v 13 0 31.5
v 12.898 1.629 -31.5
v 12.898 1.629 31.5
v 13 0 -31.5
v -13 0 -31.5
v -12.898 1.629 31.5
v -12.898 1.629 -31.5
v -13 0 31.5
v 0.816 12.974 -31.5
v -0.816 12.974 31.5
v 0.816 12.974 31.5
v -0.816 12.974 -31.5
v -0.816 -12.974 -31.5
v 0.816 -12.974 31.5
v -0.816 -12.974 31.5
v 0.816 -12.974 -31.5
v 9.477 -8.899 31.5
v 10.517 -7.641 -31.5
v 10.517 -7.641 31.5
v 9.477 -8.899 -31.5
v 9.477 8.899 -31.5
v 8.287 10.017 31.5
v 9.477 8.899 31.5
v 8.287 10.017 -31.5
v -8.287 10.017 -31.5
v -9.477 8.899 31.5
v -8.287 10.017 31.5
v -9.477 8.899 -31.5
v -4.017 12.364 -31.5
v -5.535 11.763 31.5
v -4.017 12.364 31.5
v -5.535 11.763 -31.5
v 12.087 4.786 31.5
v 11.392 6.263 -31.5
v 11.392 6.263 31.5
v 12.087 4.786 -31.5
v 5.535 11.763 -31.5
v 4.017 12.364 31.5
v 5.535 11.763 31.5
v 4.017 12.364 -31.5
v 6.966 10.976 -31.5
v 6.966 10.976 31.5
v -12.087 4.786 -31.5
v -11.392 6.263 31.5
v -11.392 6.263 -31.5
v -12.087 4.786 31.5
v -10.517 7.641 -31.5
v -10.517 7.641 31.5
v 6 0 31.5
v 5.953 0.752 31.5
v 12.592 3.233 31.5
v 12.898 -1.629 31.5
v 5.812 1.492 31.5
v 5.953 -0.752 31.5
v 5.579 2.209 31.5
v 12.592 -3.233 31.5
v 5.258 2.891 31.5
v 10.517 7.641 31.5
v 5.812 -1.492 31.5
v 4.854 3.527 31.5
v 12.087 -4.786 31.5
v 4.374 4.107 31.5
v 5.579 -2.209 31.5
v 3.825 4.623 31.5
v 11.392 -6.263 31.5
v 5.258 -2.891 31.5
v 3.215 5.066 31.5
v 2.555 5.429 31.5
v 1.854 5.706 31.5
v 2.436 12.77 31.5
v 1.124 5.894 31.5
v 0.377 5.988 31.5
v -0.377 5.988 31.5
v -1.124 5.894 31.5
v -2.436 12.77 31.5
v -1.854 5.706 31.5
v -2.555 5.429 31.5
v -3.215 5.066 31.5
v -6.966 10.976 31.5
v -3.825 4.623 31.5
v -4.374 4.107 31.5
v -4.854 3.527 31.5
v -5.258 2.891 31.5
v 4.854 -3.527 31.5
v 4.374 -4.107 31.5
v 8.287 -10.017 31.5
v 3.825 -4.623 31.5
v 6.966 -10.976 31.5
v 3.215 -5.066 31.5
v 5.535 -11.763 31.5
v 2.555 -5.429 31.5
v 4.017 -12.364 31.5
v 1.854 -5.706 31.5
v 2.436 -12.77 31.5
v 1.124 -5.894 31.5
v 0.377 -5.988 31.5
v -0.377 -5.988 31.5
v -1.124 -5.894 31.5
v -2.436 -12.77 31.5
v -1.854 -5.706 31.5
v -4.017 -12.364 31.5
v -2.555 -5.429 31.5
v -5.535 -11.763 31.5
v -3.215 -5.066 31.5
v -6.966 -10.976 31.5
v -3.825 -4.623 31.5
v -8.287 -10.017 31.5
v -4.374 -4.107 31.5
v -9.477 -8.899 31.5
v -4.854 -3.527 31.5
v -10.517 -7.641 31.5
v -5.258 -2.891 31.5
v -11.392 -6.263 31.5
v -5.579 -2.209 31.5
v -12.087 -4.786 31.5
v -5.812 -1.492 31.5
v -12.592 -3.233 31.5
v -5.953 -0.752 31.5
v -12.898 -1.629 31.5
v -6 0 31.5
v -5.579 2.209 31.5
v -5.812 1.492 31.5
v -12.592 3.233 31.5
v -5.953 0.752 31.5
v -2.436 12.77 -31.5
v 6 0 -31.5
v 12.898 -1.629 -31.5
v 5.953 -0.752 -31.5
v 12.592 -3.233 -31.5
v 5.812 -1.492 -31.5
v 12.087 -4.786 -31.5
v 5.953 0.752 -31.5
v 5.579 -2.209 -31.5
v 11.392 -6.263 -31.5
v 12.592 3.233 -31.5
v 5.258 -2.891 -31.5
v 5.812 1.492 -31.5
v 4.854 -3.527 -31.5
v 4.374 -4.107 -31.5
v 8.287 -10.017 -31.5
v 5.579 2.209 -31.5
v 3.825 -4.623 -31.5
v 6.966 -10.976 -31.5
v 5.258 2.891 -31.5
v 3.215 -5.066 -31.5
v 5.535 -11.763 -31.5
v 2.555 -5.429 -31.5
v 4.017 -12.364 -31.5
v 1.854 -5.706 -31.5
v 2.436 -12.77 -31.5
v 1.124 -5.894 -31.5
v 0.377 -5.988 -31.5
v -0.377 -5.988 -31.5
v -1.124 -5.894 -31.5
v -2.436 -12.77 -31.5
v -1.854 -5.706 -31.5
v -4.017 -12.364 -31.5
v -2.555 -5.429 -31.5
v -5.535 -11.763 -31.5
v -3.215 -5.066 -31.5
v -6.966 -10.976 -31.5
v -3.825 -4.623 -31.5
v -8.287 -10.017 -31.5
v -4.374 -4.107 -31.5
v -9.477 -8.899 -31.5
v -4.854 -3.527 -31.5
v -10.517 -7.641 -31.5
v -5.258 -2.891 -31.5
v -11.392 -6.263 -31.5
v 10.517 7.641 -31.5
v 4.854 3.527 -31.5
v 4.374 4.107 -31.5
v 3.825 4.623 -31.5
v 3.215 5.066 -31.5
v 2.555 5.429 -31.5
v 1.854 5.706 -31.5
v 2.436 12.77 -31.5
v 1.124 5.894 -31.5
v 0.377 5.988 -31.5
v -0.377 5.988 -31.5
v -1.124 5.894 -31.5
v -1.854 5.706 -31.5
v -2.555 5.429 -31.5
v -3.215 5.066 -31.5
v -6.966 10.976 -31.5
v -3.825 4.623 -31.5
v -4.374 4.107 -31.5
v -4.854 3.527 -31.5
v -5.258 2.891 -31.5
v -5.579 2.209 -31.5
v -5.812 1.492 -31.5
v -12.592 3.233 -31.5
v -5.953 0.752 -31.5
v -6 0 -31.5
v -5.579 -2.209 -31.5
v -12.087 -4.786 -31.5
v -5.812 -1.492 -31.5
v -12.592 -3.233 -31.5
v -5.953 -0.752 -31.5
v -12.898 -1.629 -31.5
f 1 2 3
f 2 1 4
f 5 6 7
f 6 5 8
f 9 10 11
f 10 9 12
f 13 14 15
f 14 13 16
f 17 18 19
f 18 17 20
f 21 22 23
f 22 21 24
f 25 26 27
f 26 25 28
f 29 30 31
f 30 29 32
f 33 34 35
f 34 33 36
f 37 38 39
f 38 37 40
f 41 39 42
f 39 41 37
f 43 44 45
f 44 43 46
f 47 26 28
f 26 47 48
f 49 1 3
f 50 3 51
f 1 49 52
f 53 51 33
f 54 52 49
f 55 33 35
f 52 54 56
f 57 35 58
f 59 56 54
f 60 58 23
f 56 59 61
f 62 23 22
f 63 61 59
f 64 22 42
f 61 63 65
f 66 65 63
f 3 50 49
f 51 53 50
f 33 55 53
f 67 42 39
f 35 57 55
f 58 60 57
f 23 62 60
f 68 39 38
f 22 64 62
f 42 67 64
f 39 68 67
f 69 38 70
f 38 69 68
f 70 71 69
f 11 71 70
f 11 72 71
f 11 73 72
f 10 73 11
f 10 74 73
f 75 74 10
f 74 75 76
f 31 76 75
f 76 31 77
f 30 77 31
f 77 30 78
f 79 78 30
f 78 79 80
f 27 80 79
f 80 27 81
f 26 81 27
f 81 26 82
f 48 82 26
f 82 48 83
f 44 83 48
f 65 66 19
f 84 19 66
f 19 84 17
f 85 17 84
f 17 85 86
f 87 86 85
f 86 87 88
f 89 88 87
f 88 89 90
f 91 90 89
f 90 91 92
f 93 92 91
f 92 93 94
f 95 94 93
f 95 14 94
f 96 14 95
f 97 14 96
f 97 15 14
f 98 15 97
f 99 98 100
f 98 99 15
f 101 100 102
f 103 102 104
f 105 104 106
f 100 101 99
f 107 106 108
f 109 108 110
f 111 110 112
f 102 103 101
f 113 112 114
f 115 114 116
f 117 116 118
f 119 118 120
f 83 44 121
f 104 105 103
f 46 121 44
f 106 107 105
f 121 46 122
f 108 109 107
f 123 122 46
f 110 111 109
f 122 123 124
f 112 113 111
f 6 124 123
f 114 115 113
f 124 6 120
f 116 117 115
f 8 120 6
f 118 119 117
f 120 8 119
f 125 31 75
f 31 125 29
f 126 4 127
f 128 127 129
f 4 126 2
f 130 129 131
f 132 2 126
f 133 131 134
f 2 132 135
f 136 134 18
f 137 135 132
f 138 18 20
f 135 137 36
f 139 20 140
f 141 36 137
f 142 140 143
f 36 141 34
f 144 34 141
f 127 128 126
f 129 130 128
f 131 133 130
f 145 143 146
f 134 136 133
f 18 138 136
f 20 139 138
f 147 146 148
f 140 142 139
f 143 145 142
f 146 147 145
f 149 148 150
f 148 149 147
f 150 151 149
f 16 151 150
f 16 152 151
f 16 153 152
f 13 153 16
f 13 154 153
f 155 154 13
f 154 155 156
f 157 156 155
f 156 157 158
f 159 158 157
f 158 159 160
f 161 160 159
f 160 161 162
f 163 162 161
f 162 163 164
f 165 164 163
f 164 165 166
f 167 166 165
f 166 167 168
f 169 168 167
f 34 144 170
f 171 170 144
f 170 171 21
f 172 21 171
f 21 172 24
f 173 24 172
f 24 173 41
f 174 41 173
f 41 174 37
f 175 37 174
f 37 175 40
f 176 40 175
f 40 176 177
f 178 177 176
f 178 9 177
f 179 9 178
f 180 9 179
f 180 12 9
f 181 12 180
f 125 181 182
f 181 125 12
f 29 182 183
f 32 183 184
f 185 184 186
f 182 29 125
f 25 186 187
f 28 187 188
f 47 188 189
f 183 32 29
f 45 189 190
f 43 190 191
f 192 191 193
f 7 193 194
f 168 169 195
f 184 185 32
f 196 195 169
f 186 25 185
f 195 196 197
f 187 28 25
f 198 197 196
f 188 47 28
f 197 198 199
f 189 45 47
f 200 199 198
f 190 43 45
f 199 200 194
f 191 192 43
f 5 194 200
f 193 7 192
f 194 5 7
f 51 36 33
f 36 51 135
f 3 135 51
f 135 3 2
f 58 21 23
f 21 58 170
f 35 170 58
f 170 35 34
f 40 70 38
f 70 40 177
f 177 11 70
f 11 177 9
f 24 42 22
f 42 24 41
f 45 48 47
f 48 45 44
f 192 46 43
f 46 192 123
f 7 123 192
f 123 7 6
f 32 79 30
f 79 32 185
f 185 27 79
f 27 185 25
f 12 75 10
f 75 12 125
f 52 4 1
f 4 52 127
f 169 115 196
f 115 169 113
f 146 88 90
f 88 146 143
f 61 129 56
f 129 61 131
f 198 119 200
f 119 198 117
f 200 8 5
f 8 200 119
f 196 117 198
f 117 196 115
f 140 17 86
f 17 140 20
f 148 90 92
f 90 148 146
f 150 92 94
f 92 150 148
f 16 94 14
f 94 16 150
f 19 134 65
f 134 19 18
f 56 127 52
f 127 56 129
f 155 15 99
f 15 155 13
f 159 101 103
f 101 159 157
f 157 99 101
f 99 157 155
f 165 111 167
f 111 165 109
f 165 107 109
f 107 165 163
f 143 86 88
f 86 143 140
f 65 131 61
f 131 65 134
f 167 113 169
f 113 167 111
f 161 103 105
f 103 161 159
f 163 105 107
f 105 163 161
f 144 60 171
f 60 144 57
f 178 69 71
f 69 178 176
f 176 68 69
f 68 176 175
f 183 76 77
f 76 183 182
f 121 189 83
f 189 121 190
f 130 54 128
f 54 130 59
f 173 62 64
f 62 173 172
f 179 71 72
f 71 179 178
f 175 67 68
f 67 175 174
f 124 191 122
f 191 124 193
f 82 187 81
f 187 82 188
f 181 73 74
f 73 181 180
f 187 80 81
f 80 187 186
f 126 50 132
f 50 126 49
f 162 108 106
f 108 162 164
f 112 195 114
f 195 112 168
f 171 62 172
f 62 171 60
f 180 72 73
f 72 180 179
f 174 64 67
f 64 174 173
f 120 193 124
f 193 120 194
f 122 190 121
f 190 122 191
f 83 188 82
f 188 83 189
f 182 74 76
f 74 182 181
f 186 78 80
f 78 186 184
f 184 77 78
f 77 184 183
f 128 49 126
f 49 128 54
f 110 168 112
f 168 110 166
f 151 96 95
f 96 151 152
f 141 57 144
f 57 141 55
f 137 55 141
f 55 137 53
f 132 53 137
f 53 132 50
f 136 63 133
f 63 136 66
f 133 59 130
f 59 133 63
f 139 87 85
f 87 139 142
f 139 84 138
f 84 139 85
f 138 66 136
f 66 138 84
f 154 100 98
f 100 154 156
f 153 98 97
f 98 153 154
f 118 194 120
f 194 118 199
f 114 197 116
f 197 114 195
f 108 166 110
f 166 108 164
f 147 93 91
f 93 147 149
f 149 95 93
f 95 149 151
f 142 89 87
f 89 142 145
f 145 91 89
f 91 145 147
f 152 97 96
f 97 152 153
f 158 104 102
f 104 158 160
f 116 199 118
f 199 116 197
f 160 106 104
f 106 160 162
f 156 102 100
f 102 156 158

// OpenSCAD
$fn = 50;


difference() {
	union() {
		translate(v = [0, 0, -31.5000000000]) {
			cylinder(h = 63, r = 13.0000000000);
		}
	}
	union() {
		translate(v = [0, 0, -100.0000000000]) {
			cylinder(h = 200, r = 6);
		}
	}
}
